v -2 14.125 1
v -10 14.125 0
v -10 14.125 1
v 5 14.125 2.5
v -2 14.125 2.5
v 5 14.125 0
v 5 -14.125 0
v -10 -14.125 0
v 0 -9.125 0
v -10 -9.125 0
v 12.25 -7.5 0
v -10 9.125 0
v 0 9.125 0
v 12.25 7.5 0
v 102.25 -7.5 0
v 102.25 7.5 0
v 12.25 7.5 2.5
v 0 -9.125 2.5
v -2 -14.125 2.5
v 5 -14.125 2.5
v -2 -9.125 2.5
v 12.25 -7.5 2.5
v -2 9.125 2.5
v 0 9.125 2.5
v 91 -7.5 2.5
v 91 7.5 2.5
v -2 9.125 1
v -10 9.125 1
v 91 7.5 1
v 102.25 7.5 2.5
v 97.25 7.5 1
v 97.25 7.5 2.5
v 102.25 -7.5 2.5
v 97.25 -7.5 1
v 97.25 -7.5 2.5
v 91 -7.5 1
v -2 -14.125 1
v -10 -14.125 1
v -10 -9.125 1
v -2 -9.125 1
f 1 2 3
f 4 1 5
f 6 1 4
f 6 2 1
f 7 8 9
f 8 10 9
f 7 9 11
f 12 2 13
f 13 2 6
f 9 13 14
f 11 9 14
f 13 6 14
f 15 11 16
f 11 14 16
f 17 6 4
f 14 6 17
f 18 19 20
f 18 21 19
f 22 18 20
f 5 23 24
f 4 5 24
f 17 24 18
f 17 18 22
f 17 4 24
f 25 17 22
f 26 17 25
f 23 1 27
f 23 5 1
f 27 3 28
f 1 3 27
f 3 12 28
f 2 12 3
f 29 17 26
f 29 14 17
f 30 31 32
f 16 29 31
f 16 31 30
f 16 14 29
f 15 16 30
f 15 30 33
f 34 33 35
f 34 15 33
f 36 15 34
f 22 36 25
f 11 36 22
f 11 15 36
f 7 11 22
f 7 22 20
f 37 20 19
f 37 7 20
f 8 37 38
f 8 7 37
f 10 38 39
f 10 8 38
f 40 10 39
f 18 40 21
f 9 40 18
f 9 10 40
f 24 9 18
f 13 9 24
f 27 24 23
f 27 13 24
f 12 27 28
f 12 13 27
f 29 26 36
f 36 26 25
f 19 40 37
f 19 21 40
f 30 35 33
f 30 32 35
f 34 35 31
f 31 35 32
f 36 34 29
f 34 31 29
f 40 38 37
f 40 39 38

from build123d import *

# Parameters (mm, degrees)
PAD_DEPTH     = 2.5
SKETCH002_W   = 6.25
SKETCH002_H   = 30
SKETCH002_W_2 = 10
SKETCH002_H_2 = 35
POCKET_DEPTH  = 1.5


with BuildPart() as part:
    # Sketch → Pad (new body)
    with BuildSketch(Plane.XY):
        Polygon((-10, 14.125), (5, 14.125), (12.25, 7.5), (102.25, 7.5), (102.25, -7.5), (12.25, -7.5), (5, -14.125), (-10, -14.125), (-10, -9.125), (0, -9.125), (0, 9.125), (-10, 9.125), align=None)
    extrude(amount=PAD_DEPTH)

    # Sketch002 → Pocket (cut)
    with BuildSketch(Plane.XY.offset(2.5)):
        with Locations((94.125, 0)):
            Rectangle(SKETCH002_W, SKETCH002_H)
        with Locations((-7, 0)):
            Rectangle(SKETCH002_W_2, SKETCH002_H_2)
    extrude(amount=-POCKET_DEPTH, mode=Mode.SUBTRACT)


solid = part.part
